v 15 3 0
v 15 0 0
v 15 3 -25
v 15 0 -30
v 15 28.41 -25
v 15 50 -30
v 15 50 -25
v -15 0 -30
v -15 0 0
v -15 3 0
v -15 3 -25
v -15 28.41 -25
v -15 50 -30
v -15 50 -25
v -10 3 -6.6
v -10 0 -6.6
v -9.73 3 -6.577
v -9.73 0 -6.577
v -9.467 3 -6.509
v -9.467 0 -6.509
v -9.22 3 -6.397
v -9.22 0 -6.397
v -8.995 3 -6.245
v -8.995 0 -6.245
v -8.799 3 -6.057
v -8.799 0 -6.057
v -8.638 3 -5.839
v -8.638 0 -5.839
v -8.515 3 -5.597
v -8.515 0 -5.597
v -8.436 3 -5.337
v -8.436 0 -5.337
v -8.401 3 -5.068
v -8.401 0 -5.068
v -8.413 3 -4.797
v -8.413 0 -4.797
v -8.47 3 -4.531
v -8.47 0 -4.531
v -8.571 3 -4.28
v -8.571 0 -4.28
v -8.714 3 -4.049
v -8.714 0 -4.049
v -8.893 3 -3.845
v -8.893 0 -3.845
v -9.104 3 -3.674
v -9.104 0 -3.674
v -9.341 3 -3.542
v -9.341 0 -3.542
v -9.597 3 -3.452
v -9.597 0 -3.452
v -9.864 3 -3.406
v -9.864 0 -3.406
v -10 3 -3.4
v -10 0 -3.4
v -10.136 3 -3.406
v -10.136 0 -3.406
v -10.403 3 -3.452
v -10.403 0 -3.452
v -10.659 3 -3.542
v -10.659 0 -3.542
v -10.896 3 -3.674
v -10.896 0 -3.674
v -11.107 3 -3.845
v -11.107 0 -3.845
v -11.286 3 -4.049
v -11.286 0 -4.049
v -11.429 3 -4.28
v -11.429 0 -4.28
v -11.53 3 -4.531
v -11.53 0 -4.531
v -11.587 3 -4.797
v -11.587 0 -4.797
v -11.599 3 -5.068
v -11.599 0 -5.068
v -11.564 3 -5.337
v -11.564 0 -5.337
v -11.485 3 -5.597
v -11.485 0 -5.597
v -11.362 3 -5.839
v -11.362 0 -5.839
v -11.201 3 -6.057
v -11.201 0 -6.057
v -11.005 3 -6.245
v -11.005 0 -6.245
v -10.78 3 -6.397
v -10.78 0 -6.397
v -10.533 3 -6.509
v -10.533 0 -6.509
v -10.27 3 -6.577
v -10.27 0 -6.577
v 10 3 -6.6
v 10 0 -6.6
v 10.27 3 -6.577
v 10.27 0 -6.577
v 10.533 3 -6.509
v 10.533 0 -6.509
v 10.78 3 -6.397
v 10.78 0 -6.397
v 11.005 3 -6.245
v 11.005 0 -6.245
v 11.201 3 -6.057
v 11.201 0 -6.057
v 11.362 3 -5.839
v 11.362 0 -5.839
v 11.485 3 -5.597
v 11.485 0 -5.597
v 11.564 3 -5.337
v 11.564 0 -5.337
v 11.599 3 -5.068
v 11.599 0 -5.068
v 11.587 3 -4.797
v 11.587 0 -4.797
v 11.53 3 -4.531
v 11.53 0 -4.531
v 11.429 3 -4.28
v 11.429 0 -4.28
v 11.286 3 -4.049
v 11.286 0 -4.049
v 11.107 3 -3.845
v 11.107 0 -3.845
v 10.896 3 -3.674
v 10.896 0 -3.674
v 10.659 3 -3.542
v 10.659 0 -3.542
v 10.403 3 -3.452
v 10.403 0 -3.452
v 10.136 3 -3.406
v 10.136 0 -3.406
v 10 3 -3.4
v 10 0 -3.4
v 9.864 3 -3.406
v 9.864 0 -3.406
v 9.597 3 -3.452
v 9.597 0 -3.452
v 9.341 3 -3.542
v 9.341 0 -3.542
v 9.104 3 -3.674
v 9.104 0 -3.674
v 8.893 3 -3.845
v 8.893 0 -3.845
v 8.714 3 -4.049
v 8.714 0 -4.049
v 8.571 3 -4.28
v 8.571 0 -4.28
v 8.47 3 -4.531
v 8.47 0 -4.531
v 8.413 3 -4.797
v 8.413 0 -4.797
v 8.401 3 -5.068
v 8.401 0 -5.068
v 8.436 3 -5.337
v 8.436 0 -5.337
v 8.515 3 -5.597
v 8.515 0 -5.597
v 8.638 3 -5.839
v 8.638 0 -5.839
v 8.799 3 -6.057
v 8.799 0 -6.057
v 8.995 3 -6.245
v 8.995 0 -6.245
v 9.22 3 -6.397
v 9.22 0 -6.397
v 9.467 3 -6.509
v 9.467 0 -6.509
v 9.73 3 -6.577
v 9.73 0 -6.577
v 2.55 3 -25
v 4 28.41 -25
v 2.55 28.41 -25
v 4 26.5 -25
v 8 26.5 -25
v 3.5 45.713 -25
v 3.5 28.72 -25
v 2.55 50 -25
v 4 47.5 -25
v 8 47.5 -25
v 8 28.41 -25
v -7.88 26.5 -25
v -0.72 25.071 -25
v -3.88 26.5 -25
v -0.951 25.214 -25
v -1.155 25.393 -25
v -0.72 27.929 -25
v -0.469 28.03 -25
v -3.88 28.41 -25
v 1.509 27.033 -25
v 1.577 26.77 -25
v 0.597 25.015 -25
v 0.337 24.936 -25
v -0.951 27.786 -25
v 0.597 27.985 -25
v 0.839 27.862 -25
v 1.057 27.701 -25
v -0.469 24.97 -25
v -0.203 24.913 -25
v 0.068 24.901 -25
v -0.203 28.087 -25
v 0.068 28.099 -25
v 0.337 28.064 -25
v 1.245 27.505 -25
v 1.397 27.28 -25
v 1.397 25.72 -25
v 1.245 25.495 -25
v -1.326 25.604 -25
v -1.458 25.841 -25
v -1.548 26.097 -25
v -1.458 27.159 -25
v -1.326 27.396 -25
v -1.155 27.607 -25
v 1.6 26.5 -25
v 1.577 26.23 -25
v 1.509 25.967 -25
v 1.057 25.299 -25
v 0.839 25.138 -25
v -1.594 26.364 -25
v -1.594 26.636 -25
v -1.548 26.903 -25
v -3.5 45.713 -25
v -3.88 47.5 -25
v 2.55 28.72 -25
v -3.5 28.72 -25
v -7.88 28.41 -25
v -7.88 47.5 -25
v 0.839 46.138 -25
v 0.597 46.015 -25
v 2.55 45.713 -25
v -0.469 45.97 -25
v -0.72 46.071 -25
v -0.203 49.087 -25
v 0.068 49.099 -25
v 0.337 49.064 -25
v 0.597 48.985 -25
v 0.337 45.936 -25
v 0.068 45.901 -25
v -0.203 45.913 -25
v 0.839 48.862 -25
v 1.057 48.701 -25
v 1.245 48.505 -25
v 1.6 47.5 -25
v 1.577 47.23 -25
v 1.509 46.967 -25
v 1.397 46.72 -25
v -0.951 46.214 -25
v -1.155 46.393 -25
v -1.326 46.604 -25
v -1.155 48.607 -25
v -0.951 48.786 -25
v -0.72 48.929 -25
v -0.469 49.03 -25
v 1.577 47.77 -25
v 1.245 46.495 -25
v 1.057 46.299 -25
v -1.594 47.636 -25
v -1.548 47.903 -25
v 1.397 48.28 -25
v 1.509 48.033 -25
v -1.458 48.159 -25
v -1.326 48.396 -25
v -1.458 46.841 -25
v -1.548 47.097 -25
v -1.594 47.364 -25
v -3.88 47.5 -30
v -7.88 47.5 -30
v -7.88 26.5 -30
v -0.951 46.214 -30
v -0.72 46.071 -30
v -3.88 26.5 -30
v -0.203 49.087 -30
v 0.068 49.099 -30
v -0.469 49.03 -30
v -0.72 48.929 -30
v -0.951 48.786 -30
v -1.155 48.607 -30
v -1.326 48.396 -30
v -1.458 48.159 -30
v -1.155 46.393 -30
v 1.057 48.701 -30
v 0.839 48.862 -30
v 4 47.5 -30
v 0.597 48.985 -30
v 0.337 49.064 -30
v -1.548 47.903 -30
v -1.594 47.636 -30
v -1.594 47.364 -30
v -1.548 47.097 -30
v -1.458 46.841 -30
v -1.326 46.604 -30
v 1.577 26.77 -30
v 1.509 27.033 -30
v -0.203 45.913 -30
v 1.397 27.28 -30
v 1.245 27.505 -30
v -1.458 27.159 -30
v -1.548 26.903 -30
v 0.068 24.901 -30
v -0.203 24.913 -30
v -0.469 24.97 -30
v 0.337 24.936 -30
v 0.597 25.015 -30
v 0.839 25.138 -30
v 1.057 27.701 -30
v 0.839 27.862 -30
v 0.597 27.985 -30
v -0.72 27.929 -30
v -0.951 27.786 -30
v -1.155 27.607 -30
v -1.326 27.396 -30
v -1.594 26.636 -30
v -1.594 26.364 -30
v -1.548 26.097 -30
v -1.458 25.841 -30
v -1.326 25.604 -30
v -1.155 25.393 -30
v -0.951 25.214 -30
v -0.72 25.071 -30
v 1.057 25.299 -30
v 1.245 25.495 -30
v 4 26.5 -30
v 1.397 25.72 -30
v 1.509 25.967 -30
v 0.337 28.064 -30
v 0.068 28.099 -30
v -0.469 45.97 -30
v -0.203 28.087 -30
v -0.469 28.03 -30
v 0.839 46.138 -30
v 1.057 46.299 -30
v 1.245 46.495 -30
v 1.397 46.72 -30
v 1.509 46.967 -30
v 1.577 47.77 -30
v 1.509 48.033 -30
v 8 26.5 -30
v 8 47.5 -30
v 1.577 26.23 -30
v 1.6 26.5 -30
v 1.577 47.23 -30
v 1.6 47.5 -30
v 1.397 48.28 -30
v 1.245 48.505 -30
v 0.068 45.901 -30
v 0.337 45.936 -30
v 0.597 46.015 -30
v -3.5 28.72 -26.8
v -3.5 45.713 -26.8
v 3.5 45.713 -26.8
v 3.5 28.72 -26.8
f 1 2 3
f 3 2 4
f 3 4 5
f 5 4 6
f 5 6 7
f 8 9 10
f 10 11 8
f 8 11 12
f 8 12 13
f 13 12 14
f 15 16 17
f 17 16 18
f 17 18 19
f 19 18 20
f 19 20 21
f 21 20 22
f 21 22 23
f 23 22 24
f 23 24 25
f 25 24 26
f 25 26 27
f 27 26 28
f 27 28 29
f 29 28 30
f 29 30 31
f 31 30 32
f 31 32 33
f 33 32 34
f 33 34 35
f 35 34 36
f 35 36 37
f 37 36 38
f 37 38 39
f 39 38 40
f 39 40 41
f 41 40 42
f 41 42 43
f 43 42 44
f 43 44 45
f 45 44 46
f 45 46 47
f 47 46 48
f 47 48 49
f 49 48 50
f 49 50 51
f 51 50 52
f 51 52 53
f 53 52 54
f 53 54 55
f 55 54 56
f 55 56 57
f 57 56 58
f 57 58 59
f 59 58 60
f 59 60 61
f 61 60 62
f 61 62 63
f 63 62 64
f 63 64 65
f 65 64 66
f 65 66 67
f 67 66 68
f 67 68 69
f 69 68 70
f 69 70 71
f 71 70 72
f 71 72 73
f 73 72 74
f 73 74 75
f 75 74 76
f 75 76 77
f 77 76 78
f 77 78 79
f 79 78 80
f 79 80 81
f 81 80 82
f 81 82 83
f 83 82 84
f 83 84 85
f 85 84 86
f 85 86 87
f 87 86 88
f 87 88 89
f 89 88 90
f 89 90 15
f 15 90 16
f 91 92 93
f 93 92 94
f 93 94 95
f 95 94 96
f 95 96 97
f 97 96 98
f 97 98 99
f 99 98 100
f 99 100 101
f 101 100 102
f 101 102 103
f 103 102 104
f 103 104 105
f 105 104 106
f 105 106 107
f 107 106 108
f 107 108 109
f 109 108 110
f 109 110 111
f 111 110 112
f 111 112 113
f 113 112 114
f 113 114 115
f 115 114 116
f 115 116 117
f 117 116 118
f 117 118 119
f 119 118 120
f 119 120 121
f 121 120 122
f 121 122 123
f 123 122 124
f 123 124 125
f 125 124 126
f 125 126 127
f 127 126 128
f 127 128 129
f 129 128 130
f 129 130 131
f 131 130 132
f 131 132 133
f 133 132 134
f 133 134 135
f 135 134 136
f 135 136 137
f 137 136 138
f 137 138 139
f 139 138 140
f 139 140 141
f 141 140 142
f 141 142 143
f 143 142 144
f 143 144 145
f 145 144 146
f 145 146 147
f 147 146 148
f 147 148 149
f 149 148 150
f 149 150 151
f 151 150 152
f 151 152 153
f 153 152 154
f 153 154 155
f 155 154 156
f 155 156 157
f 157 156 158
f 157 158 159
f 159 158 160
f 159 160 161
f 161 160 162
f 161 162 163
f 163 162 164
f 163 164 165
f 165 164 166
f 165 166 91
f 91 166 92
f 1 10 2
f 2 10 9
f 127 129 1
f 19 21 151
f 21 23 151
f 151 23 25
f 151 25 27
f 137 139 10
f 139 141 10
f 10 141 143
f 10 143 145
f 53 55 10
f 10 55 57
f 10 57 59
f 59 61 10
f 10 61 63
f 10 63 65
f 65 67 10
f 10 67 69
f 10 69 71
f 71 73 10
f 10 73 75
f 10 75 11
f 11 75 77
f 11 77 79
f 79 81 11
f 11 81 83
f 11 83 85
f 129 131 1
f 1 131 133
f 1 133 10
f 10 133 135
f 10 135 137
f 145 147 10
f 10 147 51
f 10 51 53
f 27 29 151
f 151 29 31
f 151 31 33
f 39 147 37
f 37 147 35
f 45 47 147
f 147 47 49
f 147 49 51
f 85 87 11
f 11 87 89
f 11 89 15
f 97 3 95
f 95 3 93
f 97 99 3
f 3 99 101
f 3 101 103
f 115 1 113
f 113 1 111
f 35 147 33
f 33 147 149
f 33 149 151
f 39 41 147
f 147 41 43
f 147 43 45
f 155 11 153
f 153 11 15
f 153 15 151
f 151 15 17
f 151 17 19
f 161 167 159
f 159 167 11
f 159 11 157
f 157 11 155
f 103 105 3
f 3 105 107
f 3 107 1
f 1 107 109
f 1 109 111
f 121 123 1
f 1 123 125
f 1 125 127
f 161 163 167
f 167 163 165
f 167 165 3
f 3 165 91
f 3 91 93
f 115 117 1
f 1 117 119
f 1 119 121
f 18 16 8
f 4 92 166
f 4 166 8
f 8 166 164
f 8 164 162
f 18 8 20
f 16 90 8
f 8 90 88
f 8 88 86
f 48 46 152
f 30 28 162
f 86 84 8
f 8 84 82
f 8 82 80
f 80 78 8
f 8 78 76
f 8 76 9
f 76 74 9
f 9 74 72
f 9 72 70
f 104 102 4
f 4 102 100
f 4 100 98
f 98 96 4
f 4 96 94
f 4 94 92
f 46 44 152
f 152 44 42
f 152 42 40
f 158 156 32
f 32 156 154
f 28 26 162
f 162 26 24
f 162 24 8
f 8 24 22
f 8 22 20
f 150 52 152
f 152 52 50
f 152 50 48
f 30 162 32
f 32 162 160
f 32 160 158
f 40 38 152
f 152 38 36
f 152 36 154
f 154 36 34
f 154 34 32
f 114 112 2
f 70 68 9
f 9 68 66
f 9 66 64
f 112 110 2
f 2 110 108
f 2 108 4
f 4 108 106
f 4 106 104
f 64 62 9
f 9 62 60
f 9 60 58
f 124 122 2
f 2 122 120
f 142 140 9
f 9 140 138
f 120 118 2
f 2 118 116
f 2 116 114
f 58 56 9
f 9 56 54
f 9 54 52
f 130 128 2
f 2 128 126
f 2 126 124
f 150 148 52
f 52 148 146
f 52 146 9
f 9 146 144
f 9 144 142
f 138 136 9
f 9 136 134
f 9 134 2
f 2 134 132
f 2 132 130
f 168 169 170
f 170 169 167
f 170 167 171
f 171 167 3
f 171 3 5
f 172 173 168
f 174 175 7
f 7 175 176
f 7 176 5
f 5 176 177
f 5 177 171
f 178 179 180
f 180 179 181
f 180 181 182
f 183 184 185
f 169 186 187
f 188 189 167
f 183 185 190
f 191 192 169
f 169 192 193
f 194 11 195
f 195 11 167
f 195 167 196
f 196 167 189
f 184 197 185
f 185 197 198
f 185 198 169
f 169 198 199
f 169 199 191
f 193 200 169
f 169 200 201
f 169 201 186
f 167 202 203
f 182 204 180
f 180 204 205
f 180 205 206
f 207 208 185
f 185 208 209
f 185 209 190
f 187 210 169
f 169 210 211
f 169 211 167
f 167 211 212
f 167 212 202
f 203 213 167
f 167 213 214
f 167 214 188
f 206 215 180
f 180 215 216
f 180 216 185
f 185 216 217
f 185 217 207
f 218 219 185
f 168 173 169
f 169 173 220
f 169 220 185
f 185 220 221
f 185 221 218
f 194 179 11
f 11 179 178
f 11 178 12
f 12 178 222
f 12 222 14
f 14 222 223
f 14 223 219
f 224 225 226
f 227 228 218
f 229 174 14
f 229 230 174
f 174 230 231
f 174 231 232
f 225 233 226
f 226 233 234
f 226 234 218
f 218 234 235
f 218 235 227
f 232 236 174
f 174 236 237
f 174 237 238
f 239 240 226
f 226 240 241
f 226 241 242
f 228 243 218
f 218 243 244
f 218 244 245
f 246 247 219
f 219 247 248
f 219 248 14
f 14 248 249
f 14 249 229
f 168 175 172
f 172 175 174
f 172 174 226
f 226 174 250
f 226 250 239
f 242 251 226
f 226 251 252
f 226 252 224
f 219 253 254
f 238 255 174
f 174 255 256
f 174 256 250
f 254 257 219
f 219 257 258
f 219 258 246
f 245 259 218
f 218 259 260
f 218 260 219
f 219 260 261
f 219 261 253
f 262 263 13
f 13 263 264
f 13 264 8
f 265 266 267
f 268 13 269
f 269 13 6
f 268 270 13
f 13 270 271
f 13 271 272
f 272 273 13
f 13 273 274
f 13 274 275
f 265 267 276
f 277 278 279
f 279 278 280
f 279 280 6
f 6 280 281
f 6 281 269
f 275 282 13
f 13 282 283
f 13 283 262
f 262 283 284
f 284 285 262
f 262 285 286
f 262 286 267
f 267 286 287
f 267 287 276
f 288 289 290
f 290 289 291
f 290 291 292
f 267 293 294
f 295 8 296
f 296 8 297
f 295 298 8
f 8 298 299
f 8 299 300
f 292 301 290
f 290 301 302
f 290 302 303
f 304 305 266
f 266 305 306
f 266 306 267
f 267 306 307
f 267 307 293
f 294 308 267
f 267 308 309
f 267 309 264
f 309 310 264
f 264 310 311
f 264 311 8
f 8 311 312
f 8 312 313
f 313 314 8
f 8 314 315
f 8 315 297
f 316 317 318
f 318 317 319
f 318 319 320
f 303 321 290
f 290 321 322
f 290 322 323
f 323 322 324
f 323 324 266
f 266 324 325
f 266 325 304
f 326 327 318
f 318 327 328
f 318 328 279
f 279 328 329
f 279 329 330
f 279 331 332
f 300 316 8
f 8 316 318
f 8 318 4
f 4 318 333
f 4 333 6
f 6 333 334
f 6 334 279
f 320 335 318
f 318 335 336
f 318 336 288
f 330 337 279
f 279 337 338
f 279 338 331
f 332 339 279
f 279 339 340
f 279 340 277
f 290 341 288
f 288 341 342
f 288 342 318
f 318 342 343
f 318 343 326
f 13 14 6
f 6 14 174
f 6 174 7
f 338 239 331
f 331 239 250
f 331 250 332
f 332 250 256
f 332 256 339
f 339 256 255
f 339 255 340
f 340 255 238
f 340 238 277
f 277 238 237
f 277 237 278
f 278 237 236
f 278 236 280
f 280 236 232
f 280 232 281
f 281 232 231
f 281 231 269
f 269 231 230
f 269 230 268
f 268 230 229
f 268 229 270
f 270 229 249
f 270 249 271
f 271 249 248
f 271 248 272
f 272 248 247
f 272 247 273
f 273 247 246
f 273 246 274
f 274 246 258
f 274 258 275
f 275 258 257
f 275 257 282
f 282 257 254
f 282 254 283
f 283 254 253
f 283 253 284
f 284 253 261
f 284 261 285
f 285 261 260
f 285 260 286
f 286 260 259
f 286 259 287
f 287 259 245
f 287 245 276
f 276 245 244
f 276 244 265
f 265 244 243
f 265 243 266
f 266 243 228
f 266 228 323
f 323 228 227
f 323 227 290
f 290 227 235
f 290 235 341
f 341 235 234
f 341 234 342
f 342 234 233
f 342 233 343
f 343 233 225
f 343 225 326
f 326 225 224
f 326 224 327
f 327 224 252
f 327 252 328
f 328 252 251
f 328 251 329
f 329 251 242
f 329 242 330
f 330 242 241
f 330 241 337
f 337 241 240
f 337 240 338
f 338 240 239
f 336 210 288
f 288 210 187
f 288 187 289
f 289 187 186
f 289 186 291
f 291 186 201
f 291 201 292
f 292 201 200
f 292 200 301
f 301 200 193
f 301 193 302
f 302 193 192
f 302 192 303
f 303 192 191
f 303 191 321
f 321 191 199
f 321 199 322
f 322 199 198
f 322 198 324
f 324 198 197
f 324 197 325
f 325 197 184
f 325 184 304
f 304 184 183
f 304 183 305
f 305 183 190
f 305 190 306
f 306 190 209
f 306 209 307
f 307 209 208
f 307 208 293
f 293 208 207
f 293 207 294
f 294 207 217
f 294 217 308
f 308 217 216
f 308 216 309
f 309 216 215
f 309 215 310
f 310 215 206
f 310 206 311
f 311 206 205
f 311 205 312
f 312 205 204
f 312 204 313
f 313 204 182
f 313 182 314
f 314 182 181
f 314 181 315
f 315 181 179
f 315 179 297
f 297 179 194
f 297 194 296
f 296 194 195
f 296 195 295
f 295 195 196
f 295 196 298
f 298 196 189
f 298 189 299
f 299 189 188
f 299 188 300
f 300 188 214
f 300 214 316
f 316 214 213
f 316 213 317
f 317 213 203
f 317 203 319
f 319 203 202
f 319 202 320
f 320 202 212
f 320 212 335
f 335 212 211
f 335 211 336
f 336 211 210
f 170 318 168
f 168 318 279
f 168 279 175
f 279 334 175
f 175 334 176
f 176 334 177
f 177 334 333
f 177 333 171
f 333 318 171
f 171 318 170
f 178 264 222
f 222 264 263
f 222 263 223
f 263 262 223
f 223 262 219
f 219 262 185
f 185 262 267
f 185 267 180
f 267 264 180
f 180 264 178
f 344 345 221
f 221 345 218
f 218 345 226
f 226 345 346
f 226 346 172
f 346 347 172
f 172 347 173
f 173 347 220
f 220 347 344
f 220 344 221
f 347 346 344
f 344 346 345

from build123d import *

# Parameters (mm, degrees)
SKETCH_1_R          = 1.6
EXTRUDE_1_DEPTH     = 3
EXTRUDE_2_DEPTH     = 50
SKETCH_2_R          = 1.6
SKETCH_2_W          = 4
SKETCH_2_H          = 21
CUT_EXTRUDE_1_DEPTH = 6
SKETCH_3_W          = 7
SKETCH_3_H          = 16.993149035
CUT_EXTRUDE_5_DEPTH = 1.8


with BuildPart() as part:
    # 草图1 → 凸台-拉伸1 (new body)
    with BuildSketch(Plane(origin=(0, 0, 0), x_dir=(1, 0, 0), z_dir=(0, 1, 0))):
        Polygon((-10, 0), (0, 0), (10, 0), (15, 0), (15, 25), (10, 25), (-15, 25), (-15, 0), align=None)
        with Locations((-10, 5)):
            Circle(SKETCH_1_R, mode=Mode.SUBTRACT)
        with BuildLine():
            ThreePointArc((11.6, 5), (8.86862915, 3.86862915), (10, 6.6))
            ThreePointArc((10, 6.6), (11.13137085, 6.13137085), (11.6, 5))
        make_face(mode=Mode.SUBTRACT)
    extrude(amount=EXTRUDE_1_DEPTH)

    # 草图1<3> → 凸台-拉伸2 (add)
    with BuildSketch(Plane(origin=(0, 0, 0), x_dir=(1, 0, 0), z_dir=(0, 1, 0))):
        Polygon((10, 25), (15, 25), (15, 30), (-15, 30), (-15, 25), align=None)
    extrude(amount=EXTRUDE_2_DEPTH)

    # 草图2 → 切除-拉伸1 (cut, through all)
    with BuildSketch(Plane.XY.offset(-25)):
        with Locations((0, 47.5)):
            Circle(SKETCH_2_R)
        with Locations((0, 26.5)):
            Circle(SKETCH_2_R)
        with Locations((6, 37)):
            Rectangle(SKETCH_2_W, SKETCH_2_H)
        with Locations((-5.879917392, 37)):
            Rectangle(SKETCH_2_W, SKETCH_2_H)
    extrude(amount=-CUT_EXTRUDE_1_DEPTH, mode=Mode.SUBTRACT)

    # 草图3 → 切除-拉伸5 (cut)
    with BuildSketch(Plane.XY.offset(-25)):
        with Locations((0, 37.216442025)):
            Rectangle(SKETCH_3_W, SKETCH_3_H)
    extrude(amount=-CUT_EXTRUDE_5_DEPTH, mode=Mode.SUBTRACT)


solid = part.part
